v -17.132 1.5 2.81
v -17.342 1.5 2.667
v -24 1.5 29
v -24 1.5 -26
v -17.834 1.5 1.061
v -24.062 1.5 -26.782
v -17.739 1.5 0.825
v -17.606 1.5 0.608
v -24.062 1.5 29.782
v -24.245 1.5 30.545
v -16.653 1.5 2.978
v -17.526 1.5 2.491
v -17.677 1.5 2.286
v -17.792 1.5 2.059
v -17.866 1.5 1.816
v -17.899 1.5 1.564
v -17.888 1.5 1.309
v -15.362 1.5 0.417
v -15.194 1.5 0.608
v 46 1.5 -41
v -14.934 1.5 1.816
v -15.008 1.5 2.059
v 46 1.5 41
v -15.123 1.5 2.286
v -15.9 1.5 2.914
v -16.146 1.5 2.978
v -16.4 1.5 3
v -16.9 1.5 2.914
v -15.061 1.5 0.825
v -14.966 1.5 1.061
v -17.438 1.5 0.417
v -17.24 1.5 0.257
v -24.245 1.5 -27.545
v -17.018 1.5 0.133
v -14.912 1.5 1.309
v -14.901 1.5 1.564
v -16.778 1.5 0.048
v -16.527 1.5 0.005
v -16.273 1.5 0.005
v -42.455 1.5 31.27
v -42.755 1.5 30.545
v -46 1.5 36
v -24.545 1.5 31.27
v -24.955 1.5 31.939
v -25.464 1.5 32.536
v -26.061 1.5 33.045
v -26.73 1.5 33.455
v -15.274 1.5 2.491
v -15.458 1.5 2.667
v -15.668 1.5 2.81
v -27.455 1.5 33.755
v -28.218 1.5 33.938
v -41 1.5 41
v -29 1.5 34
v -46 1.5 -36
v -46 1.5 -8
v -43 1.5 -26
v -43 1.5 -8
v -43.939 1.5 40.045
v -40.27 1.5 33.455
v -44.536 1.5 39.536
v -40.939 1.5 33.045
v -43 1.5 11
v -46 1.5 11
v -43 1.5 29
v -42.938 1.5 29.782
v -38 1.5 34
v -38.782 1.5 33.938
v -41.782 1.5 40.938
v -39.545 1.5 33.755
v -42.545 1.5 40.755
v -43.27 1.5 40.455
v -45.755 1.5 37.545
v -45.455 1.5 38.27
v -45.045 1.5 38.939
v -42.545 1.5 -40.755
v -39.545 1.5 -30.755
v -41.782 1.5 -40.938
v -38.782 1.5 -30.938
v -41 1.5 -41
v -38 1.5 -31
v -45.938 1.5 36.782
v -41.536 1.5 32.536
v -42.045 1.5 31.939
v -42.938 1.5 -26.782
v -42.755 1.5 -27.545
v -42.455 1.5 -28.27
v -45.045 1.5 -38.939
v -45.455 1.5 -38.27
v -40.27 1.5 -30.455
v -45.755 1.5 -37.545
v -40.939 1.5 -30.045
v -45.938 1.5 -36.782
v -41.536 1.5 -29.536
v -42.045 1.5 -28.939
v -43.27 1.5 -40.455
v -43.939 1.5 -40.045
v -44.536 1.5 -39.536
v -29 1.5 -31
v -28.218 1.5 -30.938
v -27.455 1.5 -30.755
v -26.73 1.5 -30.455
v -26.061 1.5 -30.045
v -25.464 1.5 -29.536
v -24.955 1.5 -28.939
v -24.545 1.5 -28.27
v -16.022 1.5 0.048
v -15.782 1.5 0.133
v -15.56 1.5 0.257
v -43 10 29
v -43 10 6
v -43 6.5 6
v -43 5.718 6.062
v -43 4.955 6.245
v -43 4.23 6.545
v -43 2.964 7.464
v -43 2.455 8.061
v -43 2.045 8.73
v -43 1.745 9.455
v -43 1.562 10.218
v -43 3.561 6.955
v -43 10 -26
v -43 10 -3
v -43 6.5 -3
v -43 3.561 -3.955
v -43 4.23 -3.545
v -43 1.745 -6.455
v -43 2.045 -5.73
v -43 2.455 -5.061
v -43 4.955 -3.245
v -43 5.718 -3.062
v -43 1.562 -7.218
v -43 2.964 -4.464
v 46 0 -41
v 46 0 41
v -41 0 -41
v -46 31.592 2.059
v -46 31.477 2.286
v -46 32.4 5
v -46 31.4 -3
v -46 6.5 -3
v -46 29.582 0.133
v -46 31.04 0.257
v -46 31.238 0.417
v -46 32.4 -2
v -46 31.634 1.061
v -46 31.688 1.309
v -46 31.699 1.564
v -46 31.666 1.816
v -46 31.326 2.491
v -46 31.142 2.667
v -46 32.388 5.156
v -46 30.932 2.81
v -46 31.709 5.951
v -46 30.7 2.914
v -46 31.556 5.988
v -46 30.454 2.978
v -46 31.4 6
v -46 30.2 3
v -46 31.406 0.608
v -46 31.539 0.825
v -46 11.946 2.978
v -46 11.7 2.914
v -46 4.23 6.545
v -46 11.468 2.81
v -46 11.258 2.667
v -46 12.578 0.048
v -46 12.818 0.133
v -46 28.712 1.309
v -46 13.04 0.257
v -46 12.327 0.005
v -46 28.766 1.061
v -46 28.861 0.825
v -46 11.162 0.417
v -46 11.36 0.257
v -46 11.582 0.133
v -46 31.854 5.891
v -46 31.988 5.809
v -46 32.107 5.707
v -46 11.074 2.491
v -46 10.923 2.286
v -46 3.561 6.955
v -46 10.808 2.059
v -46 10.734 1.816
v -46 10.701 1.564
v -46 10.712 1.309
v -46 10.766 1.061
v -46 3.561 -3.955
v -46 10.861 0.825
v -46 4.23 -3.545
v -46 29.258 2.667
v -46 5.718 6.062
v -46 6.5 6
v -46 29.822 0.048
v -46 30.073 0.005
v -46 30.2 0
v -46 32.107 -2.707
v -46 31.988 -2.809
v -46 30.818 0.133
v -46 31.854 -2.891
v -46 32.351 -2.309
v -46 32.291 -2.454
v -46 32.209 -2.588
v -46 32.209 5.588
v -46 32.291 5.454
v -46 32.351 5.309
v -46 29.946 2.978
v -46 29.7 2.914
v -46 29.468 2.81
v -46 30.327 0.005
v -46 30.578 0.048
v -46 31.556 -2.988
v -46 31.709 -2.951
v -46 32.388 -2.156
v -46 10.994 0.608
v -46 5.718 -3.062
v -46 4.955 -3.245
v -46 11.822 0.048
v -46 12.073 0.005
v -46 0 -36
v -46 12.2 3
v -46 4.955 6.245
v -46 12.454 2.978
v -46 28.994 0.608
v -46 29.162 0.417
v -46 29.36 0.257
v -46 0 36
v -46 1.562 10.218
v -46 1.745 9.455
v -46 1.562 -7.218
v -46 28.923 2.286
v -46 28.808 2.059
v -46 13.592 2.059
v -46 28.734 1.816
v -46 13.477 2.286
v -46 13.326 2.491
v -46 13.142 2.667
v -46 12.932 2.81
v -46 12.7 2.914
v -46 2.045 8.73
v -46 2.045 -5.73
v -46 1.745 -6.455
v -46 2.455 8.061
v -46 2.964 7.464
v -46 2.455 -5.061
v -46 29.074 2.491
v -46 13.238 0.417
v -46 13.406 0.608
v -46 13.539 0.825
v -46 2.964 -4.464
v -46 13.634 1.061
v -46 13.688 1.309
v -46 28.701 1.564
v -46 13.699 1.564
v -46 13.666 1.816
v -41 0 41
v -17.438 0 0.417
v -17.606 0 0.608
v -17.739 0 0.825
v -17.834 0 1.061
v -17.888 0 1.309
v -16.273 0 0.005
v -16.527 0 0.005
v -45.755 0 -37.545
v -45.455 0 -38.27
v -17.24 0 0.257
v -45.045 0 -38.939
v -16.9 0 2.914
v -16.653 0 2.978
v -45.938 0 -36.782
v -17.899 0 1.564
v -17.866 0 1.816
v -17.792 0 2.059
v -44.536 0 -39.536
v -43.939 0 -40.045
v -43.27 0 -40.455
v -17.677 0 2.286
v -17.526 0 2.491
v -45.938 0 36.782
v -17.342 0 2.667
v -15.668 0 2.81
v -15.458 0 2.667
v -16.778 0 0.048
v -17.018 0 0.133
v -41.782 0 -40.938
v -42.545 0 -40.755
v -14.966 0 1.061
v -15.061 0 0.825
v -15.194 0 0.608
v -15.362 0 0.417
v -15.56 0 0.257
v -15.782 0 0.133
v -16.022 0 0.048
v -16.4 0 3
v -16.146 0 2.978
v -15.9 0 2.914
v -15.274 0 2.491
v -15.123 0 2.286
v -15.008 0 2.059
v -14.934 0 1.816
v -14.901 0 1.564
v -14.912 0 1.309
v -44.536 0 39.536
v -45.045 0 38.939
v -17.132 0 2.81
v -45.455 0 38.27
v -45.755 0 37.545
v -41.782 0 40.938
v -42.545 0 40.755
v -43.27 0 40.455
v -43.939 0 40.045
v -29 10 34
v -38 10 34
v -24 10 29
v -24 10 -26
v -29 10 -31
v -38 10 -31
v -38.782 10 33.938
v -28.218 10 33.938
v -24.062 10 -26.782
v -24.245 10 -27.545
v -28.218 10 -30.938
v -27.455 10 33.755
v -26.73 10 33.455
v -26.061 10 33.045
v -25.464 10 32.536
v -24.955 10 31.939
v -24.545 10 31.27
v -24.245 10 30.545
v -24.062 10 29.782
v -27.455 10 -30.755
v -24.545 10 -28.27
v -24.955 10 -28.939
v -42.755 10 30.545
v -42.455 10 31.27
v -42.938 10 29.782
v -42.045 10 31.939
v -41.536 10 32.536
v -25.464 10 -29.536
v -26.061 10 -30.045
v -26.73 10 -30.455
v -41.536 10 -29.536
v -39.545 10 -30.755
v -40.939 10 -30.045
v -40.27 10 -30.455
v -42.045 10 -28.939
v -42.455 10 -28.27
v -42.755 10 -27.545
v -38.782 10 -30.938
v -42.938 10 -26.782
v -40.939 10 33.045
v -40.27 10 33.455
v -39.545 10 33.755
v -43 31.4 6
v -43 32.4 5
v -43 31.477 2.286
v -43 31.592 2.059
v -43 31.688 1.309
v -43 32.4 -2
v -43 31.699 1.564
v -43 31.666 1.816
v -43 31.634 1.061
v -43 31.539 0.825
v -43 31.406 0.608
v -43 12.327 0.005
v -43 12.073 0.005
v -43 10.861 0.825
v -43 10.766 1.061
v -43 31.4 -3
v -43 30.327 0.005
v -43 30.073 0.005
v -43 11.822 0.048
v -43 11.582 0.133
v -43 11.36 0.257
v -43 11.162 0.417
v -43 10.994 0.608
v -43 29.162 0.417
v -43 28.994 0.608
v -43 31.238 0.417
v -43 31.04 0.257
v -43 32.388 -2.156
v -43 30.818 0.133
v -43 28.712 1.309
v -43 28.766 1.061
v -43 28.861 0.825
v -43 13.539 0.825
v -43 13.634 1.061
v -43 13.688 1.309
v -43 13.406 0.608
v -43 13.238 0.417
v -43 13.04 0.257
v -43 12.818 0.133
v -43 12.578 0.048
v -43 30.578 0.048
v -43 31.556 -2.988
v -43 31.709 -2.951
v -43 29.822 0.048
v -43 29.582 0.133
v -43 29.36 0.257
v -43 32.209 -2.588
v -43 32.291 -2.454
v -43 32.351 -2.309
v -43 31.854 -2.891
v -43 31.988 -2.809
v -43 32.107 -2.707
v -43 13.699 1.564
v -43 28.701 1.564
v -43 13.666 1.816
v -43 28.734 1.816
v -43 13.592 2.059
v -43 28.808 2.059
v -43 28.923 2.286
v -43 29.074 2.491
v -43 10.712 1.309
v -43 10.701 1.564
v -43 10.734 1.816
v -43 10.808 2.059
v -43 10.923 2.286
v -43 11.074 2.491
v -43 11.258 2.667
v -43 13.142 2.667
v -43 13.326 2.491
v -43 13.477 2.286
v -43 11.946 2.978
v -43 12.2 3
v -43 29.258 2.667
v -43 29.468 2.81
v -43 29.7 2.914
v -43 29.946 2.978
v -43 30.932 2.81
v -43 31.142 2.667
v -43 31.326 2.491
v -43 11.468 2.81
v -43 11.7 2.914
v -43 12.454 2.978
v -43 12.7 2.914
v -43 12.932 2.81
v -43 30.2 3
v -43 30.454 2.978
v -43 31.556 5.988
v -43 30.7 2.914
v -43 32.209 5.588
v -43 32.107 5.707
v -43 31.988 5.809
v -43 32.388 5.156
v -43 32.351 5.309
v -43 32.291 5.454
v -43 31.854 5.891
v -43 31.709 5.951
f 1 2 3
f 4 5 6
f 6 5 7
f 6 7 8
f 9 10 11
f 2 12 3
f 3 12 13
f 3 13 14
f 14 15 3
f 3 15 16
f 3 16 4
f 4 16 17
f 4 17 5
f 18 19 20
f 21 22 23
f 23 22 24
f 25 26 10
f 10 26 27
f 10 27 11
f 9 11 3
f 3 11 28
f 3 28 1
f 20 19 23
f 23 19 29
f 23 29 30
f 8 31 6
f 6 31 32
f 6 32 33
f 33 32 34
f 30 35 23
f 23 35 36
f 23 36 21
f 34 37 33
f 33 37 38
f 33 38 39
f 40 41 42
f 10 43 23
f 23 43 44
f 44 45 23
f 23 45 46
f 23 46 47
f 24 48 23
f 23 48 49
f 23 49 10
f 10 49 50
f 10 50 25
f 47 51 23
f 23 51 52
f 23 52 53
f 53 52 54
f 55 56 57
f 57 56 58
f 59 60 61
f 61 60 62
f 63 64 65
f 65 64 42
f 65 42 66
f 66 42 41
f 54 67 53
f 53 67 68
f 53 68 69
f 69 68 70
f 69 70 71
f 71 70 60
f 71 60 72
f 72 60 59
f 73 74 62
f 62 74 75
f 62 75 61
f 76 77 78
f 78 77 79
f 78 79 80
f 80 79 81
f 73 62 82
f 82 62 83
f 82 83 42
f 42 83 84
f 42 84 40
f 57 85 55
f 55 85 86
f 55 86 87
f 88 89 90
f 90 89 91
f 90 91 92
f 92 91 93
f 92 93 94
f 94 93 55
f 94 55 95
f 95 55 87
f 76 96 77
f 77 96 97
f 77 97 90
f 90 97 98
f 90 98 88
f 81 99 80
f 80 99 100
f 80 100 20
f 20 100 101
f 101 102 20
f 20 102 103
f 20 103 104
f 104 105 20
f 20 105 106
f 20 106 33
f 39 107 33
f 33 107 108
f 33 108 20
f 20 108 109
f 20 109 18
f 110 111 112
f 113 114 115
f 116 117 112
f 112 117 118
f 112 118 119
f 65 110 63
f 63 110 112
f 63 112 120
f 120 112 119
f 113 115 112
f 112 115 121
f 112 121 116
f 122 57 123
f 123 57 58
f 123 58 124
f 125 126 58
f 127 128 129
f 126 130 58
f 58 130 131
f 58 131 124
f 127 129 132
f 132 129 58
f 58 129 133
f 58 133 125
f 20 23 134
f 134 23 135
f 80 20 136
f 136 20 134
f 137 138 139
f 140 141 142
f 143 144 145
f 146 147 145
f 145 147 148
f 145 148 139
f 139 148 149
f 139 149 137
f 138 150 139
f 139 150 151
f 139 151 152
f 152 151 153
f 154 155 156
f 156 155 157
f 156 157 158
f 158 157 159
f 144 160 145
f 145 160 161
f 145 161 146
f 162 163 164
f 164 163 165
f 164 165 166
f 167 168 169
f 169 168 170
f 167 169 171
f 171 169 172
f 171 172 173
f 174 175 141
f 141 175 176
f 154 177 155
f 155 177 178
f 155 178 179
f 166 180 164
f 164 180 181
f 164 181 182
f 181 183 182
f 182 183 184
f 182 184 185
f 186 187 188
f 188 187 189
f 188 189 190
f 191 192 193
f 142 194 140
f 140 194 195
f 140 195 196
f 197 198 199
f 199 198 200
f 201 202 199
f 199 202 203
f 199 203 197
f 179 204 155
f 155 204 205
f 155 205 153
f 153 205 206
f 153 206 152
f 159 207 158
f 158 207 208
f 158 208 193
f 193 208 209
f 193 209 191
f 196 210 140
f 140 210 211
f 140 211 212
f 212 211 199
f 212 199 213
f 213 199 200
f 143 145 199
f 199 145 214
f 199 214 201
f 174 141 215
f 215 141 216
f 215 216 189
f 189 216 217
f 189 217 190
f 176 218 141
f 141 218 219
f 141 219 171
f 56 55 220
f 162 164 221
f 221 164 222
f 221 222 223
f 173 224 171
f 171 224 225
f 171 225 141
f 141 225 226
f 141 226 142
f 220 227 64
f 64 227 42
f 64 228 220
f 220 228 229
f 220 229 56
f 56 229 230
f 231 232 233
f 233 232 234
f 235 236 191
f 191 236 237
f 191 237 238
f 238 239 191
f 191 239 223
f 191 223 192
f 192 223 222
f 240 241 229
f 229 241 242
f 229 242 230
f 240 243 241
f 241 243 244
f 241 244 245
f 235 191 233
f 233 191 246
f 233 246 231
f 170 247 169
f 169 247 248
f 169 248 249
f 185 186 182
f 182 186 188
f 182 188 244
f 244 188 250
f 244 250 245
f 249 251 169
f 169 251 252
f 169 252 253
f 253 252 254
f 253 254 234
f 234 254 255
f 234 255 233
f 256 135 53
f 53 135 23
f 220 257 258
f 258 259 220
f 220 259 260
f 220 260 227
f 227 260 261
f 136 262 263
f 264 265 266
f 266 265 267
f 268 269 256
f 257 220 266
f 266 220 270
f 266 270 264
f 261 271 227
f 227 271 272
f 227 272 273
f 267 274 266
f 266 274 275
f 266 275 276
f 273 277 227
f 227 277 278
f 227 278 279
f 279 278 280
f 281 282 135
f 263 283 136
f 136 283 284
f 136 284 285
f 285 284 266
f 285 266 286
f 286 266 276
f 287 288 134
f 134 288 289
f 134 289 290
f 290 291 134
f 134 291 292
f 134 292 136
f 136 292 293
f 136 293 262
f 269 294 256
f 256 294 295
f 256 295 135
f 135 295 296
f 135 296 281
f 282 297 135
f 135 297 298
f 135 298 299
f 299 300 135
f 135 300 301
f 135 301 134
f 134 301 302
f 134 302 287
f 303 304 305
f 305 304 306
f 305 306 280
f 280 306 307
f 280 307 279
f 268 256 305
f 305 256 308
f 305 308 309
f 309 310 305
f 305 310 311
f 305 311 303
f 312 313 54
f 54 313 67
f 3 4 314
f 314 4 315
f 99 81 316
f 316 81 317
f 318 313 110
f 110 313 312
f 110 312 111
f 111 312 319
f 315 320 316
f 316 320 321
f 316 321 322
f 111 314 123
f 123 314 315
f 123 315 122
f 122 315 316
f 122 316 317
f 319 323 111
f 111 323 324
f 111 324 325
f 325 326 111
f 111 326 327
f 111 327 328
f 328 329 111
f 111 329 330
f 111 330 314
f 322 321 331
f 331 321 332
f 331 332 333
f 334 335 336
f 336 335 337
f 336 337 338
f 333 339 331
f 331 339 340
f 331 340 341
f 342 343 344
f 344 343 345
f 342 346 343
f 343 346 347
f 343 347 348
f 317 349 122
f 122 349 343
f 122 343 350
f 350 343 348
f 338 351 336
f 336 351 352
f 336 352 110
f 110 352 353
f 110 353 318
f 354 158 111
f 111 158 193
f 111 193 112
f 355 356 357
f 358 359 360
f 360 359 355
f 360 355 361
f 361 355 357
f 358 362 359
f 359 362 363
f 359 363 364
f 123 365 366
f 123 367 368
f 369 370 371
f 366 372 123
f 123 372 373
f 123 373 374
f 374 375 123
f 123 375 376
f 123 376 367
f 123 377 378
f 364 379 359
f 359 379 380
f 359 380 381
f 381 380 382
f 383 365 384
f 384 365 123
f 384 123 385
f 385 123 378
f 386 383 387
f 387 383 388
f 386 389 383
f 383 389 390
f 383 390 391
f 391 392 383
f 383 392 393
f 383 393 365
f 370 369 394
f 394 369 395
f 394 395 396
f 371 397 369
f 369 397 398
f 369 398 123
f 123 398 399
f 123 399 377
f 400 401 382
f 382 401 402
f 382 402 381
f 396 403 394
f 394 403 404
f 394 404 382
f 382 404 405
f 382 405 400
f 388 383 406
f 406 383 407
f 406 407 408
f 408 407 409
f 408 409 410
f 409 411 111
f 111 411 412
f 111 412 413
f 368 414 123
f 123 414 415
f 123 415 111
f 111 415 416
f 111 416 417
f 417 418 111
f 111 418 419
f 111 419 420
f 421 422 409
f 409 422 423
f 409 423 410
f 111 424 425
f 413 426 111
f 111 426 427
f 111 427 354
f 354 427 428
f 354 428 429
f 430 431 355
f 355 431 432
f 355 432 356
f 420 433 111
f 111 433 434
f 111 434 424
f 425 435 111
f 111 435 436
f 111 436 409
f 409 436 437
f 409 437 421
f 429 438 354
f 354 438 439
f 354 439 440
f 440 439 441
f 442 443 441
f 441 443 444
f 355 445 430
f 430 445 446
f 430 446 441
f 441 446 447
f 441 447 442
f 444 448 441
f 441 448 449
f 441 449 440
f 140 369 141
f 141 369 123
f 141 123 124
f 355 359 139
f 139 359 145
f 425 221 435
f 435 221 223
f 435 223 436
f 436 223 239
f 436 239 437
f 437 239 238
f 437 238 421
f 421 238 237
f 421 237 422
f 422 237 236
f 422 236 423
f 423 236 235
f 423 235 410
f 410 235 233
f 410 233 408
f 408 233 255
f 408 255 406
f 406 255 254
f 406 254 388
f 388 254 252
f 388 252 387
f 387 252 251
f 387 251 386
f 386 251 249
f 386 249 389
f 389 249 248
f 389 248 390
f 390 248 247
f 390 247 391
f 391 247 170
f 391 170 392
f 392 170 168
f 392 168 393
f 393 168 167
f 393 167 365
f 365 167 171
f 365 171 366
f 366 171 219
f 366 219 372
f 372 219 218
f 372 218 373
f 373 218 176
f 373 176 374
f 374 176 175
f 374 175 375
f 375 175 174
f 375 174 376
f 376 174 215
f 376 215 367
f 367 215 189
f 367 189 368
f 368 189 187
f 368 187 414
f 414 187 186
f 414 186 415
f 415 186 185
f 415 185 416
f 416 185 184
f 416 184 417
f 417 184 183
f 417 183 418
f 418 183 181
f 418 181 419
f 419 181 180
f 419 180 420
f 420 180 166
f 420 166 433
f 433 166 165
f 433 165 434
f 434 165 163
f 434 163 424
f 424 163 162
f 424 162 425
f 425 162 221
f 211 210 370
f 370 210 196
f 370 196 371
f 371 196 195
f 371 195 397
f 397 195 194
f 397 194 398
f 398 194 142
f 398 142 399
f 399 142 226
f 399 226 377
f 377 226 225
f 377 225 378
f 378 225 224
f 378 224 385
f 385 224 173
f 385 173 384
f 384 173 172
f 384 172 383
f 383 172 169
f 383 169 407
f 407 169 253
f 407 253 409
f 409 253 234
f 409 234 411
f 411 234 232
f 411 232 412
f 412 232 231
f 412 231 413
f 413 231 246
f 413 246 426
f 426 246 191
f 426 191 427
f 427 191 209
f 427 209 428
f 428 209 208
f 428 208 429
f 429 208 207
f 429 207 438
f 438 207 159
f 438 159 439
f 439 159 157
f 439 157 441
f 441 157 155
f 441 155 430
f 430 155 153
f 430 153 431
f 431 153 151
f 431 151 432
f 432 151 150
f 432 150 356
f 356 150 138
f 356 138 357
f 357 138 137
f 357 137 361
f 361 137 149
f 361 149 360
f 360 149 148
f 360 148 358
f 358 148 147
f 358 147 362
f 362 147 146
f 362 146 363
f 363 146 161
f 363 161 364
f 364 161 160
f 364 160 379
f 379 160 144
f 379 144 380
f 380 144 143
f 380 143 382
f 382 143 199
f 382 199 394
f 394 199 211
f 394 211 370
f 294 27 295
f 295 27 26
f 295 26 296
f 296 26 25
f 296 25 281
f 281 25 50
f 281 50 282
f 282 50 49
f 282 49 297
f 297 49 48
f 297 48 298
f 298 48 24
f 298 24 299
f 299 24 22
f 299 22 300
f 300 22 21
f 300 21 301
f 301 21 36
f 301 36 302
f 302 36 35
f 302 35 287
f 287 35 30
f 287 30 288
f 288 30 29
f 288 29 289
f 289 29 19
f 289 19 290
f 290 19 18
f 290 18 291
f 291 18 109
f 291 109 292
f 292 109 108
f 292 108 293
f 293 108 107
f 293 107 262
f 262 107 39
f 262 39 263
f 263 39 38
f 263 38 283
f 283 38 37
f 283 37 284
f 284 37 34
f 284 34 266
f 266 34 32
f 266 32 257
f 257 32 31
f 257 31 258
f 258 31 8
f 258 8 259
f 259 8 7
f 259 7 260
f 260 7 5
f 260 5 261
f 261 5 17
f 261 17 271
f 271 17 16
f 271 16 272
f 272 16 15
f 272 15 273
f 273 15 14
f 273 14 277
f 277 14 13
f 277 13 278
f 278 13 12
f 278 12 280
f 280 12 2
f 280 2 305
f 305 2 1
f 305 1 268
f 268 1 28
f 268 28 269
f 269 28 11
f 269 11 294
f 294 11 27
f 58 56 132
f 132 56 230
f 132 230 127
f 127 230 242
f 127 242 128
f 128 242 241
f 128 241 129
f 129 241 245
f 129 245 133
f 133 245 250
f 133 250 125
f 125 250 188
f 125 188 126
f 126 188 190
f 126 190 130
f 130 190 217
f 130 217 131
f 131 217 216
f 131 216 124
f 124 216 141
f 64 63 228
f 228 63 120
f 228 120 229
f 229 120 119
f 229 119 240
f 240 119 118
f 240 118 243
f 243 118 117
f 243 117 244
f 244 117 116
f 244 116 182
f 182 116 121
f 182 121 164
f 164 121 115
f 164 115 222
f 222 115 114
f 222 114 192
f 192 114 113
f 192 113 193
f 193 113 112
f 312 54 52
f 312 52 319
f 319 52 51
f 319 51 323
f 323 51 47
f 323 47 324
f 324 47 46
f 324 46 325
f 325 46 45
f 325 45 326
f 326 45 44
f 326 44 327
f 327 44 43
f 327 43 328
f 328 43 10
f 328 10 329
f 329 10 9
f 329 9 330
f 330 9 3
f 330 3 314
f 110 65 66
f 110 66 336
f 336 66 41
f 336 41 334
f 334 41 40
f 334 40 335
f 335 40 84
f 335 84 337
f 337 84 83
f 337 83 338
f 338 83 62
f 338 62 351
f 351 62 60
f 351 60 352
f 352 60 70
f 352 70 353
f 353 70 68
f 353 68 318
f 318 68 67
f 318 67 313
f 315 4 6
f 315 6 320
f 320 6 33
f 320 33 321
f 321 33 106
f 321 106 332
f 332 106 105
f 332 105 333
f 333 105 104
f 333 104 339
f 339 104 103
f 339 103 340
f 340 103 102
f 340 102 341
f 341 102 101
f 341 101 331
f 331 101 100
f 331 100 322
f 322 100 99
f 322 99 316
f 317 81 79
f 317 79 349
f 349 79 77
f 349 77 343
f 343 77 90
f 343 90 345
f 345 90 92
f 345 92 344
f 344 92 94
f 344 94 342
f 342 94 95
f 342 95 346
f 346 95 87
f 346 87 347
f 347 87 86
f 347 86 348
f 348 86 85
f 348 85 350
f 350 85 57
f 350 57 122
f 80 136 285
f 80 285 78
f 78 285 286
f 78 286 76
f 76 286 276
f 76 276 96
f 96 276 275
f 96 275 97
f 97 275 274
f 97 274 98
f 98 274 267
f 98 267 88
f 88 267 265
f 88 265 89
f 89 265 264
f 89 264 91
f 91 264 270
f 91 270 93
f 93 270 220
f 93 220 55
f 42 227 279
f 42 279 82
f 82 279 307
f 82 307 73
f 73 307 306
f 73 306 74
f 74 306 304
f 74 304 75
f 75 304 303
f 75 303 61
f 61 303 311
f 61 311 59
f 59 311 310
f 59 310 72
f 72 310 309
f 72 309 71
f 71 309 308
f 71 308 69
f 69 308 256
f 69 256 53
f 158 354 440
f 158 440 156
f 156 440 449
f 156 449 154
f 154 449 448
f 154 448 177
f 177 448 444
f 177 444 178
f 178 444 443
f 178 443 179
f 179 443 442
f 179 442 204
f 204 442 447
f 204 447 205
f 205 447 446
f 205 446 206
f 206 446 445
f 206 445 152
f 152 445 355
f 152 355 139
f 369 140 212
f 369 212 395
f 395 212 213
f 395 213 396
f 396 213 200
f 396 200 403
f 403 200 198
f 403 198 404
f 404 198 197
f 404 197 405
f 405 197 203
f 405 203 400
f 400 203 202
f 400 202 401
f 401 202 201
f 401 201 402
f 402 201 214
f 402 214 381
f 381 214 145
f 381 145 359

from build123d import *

# Parameters (mm, degrees)
ESBO_O1_W                = 92
ESBO_O1_H                = 82
RESSALTO_EXTRUS_O1_DEPTH = 1.5
ESBO_O2_W                = 19
ESBO_O2_H                = 65
RESSALTO_EXTRUS_O2_DEPTH = 8.5
ESBO_O3_W                = 3
ESBO_O3_H                = 9
RESSALTO_EXTRUS_O3_DEPTH = 30.9
ESBO_O4_R                = 1.5
CORTE_EXTRUS_O1_DEPTH    = 3
ESBO_O5_R                = 1.5
CORTE_EXTRUS_O2_DEPTH    = 1.5
FILETE1_R                = 5
FILETE2_R                = 1


with BuildPart() as part:
    # Esboço1 → Ressalto-extrusão1 (new body)
    with BuildSketch(Plane(origin=(0, 0, 0), x_dir=(1, 0, 0), z_dir=(0, 1, 0))):
        Rectangle(ESBO_O1_W, ESBO_O1_H)
    extrude(amount=RESSALTO_EXTRUS_O1_DEPTH)

    # Esboço2 → Ressalto-extrusão2 (add)
    with BuildSketch(Plane(origin=(0, 1.5, 0), x_dir=(1, 0, 0), z_dir=(0, 1, 0))):
        with Locations((-33.5, -1.5)):
            Rectangle(ESBO_O2_W, ESBO_O2_H)
    extrude(amount=RESSALTO_EXTRUS_O2_DEPTH)

    # Esboço3 → Ressalto-extrusão3 (add)
    with BuildSketch(Plane(origin=(0, 1.5, 0), x_dir=(1, 0, 0), z_dir=(0, 1, 0))):
        with Locations((-44.5, -1.5)):
            Rectangle(ESBO_O3_W, ESBO_O3_H)
    extrude(amount=RESSALTO_EXTRUS_O3_DEPTH)

    # Esboço4 → Corte-extrusão1 (cut)
    with BuildSketch(Plane(origin=(-46, 0, 0), x_dir=(0, 0, -1), z_dir=(1, 0, 0))):
        with Locations(Location((-1.5, 30.2, 0), (0, 0, 180))):
            Circle(ESBO_O4_R)
        with Locations(Location((-1.5, 12.2, 0), (0, 0, 180))):
            Circle(ESBO_O4_R)
    extrude(amount=CORTE_EXTRUS_O1_DEPTH, mode=Mode.SUBTRACT)

    # Esboço5 → Corte-extrusão2 (cut)
    with BuildSketch(Plane(origin=(0, 1.5, 0), x_dir=(1, 0, 0), z_dir=(0, 1, 0))):
        with Locations(Location((-16.4, -1.5, 0), (0, 0, 270))):
            Circle(ESBO_O5_R)
    extrude(amount=-CORTE_EXTRUS_O2_DEPTH, mode=Mode.SUBTRACT)

    # Filete1
    filete1_edges = [part.edges().sort_by_distance(p)[0] for p in [
        (-43, 5.75, -31),
        (-43, 5.75, 34),
        (-24, 5.75, 34),
        (-24, 5.75, -31),
        (-44.5, 1.5, 6),
        (-44.5, 1.5, -3),
        (-46, 0.75, 41),
        (-46, 0.75, -41),
    ]]
    fillet(filete1_edges, radius=FILETE1_R)

    # Filete2
    filete2_edges = [part.edges().sort_by_distance(p)[0] for p in [
        (-44.5, 32.4, 6),
        (-44.5, 32.4, -3),
    ]]
    fillet(filete2_edges, radius=FILETE2_R)


solid = part.part
